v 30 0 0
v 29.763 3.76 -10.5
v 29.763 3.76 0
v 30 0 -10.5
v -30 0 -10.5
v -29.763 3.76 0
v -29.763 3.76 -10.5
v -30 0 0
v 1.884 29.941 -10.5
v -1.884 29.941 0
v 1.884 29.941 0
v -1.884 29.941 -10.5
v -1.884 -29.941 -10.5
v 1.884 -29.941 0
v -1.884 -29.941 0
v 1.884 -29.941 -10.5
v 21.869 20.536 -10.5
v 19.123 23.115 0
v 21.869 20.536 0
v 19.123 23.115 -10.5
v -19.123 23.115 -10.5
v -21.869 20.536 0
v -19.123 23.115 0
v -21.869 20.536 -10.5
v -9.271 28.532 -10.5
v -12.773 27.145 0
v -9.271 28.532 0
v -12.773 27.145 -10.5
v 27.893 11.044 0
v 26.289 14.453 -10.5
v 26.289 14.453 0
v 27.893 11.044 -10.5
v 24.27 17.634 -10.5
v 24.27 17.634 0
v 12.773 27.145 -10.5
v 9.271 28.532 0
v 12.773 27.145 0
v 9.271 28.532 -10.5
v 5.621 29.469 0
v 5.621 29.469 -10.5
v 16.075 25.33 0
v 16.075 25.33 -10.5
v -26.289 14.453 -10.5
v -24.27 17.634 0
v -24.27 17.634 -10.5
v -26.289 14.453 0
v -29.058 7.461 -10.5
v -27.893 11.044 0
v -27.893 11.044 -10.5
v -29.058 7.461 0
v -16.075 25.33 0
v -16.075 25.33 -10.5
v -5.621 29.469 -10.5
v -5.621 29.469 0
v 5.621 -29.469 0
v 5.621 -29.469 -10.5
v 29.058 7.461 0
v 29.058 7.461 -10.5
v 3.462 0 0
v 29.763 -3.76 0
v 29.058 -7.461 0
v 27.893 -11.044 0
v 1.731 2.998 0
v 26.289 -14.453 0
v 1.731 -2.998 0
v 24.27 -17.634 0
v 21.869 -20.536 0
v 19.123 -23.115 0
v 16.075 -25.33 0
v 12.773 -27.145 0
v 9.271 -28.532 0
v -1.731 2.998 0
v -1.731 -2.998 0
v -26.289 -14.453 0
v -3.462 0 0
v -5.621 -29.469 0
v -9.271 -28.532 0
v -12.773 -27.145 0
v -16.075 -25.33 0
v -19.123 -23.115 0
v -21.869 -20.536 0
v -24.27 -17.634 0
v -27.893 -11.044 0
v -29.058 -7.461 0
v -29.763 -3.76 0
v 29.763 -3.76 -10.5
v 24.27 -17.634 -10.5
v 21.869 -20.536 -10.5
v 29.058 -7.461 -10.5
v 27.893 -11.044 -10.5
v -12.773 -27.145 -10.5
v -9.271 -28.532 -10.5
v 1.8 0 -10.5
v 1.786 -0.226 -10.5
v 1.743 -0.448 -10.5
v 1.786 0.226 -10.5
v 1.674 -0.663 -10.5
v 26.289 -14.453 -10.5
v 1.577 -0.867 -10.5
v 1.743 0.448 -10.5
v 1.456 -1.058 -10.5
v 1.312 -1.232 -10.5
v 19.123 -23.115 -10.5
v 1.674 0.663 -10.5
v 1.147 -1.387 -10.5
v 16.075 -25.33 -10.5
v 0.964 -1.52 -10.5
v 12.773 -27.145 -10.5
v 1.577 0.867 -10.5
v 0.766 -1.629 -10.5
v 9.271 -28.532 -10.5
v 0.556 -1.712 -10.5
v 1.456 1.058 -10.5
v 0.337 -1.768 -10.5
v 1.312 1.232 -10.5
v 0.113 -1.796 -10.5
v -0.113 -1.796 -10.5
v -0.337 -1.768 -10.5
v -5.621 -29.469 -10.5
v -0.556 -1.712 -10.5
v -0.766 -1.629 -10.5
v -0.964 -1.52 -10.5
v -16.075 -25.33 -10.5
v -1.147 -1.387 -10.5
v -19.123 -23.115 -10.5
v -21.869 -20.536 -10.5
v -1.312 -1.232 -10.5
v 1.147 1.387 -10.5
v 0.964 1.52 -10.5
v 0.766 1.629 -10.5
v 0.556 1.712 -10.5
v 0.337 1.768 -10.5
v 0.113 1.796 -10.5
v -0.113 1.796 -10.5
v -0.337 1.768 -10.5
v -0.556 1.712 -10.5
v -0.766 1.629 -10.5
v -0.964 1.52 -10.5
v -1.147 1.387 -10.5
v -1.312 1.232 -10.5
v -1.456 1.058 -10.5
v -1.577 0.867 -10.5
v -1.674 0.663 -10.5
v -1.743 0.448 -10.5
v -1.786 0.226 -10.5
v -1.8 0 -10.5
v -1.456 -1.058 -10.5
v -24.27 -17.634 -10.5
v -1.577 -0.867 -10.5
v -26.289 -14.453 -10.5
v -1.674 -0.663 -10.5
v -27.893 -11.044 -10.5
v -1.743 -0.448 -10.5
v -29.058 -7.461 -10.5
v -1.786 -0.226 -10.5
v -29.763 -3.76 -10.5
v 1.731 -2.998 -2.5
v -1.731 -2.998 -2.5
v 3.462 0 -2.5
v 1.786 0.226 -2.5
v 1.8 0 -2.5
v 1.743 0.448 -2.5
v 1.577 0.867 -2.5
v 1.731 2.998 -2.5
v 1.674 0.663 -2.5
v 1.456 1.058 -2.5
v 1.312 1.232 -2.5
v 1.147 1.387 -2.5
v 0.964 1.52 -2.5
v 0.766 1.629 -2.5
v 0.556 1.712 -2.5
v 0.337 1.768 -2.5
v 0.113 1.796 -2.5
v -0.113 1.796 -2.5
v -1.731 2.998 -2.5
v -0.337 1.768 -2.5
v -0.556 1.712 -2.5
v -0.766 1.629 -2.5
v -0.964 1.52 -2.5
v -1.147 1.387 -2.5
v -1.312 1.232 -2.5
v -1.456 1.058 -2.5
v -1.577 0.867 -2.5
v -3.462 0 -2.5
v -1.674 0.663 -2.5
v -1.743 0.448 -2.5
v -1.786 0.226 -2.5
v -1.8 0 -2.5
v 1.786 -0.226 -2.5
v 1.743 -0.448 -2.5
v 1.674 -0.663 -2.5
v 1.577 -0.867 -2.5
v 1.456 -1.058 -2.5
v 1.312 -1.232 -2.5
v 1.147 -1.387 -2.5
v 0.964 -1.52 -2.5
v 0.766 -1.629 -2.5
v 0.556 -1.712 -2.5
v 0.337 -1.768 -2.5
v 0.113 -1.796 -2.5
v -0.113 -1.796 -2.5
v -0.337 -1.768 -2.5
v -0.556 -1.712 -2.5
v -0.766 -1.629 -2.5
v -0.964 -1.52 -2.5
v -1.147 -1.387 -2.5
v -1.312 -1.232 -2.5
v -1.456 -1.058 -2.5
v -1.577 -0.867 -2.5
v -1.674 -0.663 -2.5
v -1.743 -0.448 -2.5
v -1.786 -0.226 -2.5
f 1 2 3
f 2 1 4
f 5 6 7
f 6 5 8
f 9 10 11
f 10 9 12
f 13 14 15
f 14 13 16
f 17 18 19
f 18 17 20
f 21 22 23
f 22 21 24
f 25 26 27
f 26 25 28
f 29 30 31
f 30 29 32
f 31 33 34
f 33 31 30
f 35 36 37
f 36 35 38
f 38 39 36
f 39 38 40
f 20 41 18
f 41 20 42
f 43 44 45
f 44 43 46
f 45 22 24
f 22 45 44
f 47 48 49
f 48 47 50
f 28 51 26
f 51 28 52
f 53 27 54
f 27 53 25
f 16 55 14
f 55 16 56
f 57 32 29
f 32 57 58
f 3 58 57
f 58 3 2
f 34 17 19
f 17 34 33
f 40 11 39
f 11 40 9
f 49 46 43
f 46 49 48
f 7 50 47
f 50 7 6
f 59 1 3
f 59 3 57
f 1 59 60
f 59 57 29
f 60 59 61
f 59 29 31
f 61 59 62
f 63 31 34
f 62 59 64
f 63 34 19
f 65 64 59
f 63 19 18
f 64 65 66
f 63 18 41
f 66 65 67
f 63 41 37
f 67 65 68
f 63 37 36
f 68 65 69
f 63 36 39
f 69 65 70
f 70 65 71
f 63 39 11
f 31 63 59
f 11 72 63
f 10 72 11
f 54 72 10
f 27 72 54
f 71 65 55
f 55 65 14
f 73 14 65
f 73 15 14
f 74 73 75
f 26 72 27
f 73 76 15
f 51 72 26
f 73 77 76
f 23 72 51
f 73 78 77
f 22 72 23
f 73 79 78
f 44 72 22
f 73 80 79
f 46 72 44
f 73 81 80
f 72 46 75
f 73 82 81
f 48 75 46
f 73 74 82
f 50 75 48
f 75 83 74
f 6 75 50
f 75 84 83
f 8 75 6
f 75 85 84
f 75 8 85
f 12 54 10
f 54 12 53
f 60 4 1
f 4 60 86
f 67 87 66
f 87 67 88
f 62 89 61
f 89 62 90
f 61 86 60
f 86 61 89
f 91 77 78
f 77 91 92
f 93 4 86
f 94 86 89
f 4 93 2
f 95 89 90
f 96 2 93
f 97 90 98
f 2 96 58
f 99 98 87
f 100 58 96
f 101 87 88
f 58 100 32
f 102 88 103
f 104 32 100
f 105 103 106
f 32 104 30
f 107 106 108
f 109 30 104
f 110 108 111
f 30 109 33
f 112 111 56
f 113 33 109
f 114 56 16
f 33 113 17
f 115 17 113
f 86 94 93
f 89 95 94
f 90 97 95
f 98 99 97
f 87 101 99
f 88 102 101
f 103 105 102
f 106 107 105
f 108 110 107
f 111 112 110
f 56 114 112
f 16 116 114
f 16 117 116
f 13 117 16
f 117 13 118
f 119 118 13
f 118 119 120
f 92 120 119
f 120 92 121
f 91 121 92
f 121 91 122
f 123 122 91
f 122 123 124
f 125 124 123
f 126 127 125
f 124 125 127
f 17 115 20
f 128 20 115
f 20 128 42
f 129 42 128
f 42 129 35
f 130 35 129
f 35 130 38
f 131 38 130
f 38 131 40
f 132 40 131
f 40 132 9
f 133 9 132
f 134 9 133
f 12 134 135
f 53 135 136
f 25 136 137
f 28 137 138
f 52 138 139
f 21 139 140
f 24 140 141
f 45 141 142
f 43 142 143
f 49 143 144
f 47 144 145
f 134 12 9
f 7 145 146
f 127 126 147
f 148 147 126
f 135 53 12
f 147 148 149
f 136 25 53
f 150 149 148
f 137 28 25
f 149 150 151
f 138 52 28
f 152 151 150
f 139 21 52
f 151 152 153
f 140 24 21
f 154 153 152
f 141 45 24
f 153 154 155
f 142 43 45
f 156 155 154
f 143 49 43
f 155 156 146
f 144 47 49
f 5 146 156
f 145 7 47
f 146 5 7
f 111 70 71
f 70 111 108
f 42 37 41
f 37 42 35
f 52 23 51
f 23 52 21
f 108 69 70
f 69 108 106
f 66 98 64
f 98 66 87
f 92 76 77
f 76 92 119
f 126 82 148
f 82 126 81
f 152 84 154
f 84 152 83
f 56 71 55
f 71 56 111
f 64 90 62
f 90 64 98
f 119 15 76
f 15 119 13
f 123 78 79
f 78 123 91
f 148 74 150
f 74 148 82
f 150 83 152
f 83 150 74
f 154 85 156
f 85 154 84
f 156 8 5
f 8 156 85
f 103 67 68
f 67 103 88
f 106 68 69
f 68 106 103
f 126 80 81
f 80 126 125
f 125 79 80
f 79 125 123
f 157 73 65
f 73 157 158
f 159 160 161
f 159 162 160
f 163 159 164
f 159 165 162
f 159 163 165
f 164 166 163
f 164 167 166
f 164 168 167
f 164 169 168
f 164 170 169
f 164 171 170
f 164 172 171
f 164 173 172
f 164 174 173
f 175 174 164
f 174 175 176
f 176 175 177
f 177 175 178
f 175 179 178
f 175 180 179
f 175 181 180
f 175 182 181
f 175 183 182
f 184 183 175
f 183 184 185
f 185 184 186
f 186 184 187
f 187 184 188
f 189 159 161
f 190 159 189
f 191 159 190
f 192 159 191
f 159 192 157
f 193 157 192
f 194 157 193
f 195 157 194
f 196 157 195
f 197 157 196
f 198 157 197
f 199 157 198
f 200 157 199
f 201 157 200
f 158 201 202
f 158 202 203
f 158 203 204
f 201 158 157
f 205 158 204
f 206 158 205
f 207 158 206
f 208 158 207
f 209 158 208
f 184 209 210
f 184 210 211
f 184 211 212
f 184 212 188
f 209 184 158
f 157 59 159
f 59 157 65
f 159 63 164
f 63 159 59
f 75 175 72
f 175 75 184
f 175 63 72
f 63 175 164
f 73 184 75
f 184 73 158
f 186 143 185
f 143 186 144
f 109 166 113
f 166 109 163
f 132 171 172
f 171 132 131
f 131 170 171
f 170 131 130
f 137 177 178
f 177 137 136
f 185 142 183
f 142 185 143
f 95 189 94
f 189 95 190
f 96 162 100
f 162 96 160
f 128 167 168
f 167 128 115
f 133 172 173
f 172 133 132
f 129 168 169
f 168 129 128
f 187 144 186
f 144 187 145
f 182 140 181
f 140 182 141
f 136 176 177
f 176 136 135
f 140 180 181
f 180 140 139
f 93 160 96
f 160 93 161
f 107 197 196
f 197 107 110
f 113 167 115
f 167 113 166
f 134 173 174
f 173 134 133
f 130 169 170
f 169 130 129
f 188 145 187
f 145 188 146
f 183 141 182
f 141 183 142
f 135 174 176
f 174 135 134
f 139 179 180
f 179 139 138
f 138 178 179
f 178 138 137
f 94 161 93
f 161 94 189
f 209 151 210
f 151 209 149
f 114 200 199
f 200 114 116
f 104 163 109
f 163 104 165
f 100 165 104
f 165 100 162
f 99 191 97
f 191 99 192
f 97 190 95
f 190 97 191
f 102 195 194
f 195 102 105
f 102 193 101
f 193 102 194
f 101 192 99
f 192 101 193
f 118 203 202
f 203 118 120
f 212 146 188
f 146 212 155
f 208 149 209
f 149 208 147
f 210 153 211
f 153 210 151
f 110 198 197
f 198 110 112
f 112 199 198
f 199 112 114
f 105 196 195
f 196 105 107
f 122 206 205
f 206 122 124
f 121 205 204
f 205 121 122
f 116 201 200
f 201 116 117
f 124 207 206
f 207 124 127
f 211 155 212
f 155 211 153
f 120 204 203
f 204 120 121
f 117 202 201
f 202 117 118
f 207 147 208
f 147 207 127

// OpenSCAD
$fn = 50;


difference() {
	union() {
		translate(v = [0, 0, -10.5000000000]) {
			cylinder(h = 10.5000000000, r = 30.0000000000);
		}
		translate(v = [0, 0, -9.0000000000]) {
			cylinder(h = 9, r = 2.8750000000);
		}
	}
	union() {
		translate(v = [0, 0, 0]) {
			rotate(a = [0, 0, 0]) {
				difference() {
					union() {
						translate(v = [0, 0, -2.5000000000]) {
							#linear_extrude(height = 2.5000000000) {
								polygon(points = [[3.4620000000, 0.0000000000], [1.7310000000, 2.9981799479], [-1.7310000000, 2.9981799479], [-3.4620000000, 0.0000000000], [-1.7310000000, -2.9981799479], [1.7310000000, -2.9981799479]]);
							}
						}
					}
					union();
				}
			}
		}
		#translate(v = [0, 0, -100.0000000000]) {
			cylinder(h = 200, r = 1.8000000000);
		}
	}
}
